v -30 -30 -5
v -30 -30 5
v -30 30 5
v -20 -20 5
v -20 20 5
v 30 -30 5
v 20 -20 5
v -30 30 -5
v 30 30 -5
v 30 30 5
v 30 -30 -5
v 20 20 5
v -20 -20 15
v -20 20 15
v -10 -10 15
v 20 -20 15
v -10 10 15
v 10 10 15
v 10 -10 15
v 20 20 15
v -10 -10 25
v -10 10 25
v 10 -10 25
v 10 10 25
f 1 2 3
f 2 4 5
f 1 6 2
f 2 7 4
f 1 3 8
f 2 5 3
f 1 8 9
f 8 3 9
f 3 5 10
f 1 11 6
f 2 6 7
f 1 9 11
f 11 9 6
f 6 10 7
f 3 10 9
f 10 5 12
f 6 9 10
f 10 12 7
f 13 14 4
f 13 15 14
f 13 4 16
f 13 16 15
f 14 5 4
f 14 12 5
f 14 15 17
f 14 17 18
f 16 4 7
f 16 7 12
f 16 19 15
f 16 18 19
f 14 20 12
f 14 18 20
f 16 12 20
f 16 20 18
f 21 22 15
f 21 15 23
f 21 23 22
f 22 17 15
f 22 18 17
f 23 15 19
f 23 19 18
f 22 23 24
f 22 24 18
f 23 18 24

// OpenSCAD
// 最下段: 60mm x 60mm x 高さ 10mm
cube([60, 60, 10], center = true);

// 中段: 40mm x 40mm x 高さ 10mm
// 最下段の上に配置するため、Z軸方向に10mm移動
translate([0, 0, 10]) {
    cube([40, 40, 10], center = true);
}

// 最上段: 20mm x 20mm x 高さ 10mm
// 最下段と中段の上に配置するため、Z軸方向に20mm移動
translate([0, 0, 20]) {
    cube([20, 20, 10], center = true);
}
